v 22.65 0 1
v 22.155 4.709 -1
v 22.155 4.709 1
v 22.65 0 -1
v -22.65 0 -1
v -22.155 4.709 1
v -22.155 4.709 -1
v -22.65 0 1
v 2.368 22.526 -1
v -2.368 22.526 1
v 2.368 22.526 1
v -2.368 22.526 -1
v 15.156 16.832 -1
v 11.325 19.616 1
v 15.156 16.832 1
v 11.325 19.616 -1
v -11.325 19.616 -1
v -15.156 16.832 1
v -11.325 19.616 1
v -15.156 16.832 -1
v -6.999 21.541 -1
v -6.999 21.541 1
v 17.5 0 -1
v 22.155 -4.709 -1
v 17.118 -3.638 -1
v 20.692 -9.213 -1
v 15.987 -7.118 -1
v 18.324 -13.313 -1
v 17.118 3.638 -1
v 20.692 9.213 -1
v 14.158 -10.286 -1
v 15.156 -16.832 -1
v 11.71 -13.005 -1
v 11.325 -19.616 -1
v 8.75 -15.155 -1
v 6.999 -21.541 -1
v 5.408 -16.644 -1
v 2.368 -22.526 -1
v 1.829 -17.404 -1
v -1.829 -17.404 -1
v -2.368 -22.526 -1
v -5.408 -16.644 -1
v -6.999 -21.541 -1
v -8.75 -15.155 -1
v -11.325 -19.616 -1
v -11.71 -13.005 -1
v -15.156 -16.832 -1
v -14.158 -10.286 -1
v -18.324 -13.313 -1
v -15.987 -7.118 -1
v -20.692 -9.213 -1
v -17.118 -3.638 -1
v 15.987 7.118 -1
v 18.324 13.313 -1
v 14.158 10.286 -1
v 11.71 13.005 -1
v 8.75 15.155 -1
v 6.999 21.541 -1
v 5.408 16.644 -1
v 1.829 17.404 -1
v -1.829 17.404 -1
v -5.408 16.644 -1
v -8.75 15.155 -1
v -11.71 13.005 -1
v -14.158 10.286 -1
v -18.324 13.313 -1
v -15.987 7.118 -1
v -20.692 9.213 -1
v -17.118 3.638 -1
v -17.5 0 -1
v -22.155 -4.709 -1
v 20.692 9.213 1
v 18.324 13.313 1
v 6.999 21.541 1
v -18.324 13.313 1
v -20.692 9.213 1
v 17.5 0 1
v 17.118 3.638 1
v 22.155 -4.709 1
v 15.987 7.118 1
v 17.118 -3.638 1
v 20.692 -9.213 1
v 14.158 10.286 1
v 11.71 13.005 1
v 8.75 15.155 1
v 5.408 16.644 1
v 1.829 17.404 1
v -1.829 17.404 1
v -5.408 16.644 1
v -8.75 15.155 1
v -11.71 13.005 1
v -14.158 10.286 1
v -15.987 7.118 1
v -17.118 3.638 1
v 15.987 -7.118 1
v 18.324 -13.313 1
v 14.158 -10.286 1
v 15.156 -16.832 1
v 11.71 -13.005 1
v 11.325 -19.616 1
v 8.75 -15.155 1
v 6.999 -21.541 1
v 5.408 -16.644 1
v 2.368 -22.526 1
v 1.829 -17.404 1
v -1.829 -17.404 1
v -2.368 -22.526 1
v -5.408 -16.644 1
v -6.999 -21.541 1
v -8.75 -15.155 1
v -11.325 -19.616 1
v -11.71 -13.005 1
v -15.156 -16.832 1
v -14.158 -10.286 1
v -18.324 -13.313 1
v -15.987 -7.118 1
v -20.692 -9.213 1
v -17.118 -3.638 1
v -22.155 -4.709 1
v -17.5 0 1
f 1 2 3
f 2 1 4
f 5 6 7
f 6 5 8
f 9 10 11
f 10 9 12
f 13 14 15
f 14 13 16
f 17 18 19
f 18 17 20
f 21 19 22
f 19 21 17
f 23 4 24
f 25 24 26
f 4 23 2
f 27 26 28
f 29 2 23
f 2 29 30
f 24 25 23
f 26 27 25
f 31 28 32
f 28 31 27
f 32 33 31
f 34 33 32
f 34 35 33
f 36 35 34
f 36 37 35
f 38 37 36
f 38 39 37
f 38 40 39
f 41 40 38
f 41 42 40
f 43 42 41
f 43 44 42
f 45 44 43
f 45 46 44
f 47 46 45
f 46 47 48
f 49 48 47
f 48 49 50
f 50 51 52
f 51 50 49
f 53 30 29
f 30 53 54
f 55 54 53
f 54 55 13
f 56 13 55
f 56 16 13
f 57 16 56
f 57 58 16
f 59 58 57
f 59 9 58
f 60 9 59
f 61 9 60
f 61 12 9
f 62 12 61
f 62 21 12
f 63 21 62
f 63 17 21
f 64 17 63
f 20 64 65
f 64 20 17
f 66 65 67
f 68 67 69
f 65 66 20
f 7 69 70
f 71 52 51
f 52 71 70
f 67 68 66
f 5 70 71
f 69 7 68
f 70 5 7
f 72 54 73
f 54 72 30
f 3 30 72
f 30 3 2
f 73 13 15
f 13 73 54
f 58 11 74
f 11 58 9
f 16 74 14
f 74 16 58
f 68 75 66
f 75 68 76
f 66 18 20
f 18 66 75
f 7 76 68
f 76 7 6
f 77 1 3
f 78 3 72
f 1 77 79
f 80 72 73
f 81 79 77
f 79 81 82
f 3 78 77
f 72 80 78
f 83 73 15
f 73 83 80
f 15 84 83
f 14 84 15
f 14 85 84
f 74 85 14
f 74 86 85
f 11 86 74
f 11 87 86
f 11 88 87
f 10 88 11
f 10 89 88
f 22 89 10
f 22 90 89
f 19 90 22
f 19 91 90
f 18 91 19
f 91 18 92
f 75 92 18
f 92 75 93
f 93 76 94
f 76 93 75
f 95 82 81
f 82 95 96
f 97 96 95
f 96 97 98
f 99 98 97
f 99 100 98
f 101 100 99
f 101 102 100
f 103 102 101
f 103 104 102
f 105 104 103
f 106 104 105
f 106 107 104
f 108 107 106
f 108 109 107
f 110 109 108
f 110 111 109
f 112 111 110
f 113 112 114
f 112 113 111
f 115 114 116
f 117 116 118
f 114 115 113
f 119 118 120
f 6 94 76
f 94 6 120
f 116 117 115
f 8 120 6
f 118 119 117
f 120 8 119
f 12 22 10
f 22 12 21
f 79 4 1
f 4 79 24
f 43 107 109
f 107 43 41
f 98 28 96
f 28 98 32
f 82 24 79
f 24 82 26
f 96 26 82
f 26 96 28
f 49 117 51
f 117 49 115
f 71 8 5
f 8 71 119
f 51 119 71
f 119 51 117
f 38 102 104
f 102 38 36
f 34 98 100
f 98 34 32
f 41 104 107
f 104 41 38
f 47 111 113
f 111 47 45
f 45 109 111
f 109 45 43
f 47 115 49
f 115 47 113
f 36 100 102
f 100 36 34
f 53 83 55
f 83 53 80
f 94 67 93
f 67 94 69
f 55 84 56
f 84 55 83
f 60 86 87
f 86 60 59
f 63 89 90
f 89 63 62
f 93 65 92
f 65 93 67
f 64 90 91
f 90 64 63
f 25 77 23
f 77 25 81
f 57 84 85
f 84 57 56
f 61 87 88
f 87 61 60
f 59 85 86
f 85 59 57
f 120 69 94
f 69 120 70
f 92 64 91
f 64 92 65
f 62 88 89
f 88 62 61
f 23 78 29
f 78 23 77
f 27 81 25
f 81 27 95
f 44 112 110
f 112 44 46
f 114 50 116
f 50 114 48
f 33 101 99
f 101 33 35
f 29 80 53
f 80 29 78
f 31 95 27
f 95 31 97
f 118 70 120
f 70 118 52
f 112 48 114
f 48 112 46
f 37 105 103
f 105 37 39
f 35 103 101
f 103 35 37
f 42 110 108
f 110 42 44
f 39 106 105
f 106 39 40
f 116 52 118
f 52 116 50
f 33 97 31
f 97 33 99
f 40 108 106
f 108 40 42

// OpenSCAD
//alle Maße in mm
Pd = 2; //plattendicke ist 2mm

//Maße Grundplatte
Da = 45.3; //Länge Grundplatte
Di = 35;  //Breite Grundplatte


//Adapetrring 
difference(){
    cylinder(h=Pd, d=Da, center = true);
    cylinder(h=Pd+2, d=Di, center = true);
}

    
